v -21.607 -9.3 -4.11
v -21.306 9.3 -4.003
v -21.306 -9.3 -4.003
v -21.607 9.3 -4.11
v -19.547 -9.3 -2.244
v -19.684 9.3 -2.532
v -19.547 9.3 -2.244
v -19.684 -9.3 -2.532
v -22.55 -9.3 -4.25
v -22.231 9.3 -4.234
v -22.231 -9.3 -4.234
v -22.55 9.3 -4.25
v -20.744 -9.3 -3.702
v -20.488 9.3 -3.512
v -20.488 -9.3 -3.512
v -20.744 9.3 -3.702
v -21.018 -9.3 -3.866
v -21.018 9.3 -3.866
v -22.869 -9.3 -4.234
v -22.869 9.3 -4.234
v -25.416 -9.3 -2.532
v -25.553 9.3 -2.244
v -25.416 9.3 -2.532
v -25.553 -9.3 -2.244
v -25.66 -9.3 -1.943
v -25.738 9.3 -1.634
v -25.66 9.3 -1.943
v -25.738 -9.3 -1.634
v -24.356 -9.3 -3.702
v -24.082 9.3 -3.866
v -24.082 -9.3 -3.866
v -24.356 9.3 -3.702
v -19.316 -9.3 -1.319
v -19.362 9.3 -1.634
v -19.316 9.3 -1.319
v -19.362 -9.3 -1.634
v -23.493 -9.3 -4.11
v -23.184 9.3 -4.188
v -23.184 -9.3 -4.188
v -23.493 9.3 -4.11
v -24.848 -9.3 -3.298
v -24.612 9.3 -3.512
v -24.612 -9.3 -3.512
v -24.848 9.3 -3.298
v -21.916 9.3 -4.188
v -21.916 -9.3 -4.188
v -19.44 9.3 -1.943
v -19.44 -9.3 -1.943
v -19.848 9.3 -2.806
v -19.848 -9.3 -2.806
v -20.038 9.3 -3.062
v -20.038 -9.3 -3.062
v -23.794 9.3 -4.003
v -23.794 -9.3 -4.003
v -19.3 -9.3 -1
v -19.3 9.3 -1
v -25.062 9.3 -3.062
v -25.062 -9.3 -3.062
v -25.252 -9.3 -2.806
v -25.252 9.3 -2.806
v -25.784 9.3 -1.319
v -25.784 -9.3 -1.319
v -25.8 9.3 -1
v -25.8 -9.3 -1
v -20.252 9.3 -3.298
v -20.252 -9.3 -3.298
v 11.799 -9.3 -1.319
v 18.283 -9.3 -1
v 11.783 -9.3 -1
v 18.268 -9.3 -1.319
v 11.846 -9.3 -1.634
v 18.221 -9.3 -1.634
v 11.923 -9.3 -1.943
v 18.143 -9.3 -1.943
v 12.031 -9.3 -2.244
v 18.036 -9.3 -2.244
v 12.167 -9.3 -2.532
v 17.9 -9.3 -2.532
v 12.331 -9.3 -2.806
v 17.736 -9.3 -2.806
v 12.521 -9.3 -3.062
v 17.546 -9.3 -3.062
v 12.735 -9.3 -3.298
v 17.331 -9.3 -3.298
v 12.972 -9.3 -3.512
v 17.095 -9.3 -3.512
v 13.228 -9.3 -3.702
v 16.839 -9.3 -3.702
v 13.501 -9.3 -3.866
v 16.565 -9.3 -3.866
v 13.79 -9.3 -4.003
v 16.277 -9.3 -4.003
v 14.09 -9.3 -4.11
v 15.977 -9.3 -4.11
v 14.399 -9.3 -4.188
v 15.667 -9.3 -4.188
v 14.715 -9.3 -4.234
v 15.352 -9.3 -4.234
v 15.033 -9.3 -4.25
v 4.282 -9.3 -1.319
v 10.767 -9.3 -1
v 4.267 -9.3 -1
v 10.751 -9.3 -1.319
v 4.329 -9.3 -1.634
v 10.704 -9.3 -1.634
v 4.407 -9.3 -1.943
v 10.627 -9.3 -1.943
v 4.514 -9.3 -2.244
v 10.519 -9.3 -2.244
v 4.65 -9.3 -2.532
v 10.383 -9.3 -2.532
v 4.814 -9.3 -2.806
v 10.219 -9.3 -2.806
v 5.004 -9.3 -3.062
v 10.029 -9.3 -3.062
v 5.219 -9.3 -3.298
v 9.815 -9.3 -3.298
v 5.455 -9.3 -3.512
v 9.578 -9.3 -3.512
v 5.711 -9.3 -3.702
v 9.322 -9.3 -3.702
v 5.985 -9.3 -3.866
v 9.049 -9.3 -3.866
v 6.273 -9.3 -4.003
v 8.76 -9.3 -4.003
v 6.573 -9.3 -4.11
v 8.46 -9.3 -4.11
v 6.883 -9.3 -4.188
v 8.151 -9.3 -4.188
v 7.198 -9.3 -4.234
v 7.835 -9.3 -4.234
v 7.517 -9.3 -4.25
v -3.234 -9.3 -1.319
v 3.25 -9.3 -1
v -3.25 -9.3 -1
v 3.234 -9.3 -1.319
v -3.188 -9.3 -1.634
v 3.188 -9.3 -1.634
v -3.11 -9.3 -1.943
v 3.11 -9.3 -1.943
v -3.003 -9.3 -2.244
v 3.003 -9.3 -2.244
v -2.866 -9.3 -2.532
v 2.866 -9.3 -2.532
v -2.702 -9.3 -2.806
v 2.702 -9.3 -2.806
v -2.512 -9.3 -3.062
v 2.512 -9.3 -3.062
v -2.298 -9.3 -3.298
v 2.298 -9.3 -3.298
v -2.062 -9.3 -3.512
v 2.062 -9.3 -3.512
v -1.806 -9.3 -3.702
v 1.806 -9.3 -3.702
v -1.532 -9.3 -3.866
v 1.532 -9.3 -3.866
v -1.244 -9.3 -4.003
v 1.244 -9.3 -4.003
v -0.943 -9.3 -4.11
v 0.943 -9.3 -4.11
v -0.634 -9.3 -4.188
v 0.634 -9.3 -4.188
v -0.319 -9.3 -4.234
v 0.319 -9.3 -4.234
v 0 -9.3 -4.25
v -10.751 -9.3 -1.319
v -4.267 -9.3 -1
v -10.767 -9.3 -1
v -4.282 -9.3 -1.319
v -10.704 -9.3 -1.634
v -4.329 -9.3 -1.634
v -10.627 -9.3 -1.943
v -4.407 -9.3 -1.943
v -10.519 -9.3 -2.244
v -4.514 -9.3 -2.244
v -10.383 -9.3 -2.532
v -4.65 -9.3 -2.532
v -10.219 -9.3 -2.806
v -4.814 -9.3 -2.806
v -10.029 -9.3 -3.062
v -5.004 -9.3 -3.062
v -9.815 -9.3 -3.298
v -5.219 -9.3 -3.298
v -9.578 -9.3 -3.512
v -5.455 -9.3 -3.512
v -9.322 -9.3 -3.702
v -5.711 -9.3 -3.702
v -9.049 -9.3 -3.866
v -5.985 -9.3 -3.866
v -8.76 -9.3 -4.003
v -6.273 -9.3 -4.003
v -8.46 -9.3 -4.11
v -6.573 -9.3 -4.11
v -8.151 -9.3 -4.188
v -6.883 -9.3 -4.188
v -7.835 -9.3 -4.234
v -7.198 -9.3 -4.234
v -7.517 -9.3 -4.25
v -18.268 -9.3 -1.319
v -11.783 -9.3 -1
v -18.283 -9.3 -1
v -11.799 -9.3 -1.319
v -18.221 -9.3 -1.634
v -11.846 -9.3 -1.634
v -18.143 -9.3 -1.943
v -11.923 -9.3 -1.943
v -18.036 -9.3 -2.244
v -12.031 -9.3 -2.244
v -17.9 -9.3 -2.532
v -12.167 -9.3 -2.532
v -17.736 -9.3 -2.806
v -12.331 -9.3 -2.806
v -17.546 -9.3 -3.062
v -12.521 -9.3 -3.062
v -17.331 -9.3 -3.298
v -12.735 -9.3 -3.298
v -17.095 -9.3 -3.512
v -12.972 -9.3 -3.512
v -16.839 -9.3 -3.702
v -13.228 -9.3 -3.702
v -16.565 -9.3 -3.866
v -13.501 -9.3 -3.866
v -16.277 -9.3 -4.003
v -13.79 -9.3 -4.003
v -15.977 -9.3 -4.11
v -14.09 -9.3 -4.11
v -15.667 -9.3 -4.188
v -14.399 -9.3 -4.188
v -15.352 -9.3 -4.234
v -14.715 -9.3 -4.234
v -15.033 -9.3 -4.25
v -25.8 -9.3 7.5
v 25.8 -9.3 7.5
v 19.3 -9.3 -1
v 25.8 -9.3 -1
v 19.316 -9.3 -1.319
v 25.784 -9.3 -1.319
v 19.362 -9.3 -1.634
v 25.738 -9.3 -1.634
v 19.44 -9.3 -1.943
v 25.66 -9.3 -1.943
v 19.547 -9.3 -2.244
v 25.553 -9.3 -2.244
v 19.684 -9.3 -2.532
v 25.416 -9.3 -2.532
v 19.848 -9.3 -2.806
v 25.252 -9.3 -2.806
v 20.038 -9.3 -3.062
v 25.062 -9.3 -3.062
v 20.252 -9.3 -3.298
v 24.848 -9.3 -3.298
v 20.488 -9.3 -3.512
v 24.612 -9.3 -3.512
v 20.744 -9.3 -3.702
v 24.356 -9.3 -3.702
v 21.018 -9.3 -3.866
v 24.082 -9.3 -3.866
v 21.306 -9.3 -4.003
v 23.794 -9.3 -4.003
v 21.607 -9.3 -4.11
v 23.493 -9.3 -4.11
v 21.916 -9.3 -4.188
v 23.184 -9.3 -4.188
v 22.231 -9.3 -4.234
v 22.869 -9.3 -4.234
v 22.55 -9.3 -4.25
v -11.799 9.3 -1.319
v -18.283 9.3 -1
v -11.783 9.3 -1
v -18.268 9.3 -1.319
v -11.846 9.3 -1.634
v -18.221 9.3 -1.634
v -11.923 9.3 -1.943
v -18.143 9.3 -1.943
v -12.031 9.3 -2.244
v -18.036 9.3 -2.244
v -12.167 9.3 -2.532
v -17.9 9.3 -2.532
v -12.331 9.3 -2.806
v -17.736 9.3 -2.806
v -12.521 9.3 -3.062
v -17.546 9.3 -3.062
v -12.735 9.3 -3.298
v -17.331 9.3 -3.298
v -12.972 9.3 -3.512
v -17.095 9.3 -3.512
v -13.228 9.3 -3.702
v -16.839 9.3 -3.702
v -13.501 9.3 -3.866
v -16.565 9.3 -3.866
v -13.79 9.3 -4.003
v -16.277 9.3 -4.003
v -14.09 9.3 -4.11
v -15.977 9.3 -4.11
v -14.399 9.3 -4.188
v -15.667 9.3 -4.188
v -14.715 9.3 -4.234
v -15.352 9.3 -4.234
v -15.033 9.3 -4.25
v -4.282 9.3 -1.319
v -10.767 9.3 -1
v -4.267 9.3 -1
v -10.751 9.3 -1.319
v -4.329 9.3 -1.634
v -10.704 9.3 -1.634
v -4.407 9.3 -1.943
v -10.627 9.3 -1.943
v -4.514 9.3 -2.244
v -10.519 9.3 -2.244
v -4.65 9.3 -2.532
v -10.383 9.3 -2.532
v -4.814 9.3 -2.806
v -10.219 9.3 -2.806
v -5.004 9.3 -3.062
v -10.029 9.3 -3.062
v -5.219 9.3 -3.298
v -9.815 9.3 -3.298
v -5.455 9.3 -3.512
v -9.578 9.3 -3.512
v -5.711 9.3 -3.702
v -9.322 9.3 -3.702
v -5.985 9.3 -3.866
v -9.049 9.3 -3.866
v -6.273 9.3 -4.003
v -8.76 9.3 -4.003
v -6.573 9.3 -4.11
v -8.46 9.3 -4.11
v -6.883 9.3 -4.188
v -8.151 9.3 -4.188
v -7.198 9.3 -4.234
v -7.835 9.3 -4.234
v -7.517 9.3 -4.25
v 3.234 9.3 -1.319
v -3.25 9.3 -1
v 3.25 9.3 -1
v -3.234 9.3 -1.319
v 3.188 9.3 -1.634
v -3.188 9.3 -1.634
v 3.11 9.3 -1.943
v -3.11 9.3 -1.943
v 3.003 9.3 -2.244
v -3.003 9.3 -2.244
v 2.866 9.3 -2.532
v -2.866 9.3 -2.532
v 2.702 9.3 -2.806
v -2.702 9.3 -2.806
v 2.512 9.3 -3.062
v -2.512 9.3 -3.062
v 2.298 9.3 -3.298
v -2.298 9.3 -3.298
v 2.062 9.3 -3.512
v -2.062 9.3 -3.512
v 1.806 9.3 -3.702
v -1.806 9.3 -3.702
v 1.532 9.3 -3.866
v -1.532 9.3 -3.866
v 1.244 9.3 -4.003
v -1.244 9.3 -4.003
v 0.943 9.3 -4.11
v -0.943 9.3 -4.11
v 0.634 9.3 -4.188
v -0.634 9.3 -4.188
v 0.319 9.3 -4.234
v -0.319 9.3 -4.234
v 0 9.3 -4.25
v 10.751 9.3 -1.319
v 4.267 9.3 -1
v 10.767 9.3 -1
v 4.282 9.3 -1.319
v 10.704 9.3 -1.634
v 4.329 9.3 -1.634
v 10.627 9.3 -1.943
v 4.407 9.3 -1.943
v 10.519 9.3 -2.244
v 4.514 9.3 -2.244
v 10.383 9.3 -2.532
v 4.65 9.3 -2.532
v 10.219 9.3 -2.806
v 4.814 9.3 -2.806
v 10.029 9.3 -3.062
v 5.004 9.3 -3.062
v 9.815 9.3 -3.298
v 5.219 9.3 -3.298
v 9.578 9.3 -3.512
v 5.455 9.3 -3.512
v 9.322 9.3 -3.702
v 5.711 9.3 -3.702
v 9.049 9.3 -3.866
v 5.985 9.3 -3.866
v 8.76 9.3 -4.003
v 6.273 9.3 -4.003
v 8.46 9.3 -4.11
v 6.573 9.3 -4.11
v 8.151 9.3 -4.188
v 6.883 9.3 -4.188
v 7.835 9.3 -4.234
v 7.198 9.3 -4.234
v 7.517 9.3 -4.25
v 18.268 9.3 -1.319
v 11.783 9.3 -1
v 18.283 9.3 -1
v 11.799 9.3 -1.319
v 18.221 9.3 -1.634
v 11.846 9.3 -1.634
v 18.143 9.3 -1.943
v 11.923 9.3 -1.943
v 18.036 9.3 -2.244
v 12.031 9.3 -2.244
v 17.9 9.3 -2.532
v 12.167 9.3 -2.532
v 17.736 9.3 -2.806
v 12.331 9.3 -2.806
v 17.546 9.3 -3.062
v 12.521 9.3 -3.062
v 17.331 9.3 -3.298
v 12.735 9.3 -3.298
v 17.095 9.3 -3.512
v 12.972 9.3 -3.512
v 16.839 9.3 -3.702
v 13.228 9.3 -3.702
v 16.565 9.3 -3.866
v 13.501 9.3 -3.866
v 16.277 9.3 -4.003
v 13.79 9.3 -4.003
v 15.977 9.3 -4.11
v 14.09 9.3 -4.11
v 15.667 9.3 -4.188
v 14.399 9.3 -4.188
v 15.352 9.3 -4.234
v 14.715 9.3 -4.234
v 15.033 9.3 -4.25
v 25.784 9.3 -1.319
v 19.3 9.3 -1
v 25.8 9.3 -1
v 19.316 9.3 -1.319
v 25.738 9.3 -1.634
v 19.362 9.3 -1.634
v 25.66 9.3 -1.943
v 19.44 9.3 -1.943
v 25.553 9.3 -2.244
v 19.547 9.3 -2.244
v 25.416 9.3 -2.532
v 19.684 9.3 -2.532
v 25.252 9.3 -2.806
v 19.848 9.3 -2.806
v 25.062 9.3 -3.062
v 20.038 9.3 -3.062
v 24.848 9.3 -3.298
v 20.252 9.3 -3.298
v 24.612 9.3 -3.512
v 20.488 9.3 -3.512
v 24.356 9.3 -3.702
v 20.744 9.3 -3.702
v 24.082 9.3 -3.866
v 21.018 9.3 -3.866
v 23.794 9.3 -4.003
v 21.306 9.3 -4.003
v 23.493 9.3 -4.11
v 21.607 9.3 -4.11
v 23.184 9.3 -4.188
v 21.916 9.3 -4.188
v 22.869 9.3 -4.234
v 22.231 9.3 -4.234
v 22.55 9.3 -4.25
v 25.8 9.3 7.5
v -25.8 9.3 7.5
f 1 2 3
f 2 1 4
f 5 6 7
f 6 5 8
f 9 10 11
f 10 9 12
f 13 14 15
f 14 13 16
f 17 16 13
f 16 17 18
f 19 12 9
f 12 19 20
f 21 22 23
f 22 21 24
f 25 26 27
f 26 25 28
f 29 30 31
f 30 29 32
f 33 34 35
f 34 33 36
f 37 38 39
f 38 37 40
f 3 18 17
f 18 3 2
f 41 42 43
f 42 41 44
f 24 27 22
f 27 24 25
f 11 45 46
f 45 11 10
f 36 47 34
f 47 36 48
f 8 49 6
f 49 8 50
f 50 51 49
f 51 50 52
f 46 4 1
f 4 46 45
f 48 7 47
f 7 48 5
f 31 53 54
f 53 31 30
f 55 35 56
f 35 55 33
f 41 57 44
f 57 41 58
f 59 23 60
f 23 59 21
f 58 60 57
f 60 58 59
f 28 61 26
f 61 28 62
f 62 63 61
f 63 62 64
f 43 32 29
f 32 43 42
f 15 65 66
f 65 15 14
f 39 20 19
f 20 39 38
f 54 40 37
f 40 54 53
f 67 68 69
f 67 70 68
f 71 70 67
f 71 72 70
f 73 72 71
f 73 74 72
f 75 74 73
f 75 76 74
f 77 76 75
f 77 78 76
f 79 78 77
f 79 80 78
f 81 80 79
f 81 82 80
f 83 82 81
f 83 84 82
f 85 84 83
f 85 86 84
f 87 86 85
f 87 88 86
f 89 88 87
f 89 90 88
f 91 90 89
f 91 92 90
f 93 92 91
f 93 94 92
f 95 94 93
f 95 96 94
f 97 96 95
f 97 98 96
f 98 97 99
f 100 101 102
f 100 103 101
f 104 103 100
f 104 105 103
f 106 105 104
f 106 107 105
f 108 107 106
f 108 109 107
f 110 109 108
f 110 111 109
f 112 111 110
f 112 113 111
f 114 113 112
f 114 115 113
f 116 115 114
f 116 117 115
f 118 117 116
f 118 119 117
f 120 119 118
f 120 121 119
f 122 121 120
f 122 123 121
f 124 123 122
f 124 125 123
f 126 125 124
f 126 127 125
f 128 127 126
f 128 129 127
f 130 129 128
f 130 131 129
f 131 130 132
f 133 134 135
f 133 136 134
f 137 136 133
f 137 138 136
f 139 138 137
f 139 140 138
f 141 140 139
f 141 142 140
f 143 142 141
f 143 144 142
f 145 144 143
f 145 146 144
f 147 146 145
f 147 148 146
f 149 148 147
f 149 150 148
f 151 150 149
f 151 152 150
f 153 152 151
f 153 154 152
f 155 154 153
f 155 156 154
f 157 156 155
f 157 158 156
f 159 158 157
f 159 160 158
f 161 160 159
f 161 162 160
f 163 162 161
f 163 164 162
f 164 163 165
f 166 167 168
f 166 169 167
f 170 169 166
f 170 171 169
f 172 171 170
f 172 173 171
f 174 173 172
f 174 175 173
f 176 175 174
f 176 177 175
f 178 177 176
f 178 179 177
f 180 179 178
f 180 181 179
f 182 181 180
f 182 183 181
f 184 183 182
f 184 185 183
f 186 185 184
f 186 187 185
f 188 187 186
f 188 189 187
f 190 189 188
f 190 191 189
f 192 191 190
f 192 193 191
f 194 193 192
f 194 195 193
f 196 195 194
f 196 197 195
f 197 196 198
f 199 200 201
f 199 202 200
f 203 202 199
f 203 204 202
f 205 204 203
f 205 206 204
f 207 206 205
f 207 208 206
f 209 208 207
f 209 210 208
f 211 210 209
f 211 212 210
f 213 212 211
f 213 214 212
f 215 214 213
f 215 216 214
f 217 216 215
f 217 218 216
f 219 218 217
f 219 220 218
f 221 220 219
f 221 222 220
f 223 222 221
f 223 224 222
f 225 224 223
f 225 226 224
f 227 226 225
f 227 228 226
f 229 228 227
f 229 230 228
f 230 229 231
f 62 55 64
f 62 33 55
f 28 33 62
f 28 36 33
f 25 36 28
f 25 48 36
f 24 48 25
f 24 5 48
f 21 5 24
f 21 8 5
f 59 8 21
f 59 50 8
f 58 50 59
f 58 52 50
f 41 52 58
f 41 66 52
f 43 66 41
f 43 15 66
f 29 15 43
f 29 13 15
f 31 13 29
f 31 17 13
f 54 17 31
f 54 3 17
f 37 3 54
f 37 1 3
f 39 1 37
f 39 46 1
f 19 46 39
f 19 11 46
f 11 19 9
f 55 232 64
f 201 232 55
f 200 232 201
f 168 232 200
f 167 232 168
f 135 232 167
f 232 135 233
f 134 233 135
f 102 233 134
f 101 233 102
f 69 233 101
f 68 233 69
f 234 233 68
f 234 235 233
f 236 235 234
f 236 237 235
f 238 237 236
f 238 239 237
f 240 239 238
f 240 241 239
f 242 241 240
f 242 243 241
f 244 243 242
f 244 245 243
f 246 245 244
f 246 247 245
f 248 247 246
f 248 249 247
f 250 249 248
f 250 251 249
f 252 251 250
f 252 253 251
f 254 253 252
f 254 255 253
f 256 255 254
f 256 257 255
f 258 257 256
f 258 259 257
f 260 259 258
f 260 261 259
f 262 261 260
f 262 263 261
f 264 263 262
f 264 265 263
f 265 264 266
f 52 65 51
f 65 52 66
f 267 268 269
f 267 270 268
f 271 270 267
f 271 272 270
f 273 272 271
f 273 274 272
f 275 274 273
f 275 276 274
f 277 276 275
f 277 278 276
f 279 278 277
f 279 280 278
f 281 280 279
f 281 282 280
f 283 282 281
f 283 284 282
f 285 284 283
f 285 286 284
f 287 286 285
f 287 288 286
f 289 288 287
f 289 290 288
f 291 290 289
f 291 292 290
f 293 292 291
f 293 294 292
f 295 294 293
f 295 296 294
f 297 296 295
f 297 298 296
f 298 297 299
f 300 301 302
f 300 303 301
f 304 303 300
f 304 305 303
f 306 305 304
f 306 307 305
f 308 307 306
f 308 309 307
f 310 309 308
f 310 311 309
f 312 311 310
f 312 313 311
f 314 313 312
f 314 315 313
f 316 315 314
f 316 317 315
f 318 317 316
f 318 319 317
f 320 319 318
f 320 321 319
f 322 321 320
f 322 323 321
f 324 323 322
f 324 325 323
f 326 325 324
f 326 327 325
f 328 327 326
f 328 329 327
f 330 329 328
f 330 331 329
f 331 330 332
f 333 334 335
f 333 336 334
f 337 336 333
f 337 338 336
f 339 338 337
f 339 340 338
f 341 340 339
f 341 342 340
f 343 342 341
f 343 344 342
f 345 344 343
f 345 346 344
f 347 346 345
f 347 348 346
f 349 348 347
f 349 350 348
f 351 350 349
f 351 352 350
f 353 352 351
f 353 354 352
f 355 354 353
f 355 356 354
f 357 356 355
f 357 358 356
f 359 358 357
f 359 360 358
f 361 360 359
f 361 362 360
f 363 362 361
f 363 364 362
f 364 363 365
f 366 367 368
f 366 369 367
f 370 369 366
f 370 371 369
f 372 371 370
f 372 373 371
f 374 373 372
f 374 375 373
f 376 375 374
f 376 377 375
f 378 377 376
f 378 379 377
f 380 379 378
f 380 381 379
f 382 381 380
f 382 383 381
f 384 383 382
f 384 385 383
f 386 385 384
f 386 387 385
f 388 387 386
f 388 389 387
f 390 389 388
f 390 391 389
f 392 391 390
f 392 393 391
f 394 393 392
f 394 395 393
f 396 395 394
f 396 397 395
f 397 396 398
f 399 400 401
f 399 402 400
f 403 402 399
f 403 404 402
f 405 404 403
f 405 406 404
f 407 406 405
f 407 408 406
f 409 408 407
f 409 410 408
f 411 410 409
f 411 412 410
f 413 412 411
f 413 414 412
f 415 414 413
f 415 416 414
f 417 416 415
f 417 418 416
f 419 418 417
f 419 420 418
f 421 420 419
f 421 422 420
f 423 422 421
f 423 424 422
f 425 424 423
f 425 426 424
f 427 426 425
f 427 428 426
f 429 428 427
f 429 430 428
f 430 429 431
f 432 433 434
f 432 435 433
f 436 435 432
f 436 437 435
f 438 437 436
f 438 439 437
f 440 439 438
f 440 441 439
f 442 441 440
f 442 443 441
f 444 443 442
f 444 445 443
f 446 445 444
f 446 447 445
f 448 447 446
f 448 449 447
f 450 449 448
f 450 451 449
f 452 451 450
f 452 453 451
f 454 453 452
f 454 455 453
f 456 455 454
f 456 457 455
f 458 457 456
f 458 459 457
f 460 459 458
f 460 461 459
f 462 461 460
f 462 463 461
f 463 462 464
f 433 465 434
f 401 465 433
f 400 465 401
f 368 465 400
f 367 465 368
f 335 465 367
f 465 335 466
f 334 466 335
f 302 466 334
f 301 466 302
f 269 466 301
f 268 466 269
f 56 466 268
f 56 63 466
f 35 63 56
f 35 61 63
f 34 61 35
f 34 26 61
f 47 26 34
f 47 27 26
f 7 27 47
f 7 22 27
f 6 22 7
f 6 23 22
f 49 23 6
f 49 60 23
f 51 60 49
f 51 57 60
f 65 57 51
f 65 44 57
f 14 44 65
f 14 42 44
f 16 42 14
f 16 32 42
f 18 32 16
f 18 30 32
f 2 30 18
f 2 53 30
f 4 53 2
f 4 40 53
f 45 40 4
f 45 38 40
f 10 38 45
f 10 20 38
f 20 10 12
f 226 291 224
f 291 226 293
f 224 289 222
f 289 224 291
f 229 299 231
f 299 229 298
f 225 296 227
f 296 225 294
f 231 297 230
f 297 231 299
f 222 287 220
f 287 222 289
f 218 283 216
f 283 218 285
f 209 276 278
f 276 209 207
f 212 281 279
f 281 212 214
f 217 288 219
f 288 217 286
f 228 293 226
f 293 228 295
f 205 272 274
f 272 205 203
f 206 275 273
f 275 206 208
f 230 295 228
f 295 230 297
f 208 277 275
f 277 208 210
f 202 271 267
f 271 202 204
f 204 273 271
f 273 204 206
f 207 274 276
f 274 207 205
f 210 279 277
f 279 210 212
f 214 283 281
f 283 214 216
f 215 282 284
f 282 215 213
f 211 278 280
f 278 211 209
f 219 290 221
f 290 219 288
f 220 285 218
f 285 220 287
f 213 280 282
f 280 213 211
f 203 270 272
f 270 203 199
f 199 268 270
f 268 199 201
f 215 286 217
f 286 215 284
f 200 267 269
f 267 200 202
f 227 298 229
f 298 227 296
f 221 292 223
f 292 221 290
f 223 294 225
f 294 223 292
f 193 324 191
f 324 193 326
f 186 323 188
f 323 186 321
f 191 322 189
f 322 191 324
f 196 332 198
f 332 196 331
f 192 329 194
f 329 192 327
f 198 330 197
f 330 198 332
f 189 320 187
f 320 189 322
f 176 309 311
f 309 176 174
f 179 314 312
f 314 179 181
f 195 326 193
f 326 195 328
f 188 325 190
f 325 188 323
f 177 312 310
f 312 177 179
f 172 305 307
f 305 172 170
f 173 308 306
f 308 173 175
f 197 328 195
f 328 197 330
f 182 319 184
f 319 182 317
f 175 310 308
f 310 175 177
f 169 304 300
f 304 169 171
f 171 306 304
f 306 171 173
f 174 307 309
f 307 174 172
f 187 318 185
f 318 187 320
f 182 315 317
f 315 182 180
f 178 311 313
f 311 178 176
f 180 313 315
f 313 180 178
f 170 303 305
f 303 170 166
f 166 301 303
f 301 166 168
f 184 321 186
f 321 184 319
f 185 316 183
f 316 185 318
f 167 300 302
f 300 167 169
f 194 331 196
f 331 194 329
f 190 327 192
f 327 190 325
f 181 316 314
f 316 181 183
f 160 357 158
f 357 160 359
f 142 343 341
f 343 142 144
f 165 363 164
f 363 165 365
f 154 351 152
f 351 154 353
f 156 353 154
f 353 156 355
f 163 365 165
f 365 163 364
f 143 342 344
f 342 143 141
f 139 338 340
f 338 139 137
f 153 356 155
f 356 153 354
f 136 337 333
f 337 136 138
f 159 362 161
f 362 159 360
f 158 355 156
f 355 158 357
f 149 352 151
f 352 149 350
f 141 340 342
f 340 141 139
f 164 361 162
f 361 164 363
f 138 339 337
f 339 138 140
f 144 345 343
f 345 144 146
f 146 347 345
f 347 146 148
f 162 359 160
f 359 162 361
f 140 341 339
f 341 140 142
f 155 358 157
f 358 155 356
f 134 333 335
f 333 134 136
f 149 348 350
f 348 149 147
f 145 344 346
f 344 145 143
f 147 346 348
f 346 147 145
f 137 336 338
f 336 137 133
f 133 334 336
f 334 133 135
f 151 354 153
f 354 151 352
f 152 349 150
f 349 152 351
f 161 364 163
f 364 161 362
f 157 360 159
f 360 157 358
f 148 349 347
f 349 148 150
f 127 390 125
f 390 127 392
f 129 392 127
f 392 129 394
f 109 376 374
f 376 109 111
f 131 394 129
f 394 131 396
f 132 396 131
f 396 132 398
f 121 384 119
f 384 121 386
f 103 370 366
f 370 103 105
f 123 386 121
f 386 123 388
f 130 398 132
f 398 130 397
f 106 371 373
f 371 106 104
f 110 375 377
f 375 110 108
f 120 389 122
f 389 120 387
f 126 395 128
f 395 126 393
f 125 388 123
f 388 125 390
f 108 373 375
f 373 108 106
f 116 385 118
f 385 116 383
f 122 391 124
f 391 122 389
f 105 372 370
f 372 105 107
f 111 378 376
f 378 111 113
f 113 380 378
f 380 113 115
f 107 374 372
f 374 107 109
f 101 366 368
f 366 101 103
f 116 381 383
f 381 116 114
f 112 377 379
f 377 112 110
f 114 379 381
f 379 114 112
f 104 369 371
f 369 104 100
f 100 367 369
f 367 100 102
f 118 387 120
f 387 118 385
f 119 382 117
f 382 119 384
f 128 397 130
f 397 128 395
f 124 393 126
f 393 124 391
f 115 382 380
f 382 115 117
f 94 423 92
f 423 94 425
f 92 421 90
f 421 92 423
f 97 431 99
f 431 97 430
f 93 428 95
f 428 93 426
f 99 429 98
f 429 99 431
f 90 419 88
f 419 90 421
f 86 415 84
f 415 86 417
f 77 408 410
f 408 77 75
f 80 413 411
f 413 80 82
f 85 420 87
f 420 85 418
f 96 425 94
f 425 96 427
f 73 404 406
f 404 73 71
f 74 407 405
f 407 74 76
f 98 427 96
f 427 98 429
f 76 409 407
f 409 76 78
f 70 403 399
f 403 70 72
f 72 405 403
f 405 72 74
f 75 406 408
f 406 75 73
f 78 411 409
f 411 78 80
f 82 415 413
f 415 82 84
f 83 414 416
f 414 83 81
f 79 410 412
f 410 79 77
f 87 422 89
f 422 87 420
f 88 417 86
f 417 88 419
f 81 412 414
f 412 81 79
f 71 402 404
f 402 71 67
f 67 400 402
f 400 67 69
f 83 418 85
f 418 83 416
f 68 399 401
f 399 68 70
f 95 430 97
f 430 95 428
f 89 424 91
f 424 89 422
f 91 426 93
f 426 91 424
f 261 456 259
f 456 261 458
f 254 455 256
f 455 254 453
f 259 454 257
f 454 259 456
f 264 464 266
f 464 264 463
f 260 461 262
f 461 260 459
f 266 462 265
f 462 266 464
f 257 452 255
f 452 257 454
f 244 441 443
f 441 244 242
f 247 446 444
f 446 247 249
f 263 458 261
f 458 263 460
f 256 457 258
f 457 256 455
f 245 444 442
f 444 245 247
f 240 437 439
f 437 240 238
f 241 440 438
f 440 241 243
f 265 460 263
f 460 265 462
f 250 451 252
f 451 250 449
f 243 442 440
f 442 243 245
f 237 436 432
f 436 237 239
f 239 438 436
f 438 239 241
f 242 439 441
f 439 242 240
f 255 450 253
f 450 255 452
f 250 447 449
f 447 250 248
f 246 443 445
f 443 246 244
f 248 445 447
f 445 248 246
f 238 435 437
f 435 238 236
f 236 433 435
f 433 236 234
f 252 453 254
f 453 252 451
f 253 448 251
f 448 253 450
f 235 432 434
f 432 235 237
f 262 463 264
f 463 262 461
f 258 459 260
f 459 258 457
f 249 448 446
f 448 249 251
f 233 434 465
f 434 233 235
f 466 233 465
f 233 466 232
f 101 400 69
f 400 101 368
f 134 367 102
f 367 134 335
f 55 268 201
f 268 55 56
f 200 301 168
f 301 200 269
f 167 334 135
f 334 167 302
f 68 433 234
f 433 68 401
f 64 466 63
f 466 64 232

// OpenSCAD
include <kneeler-boot-config.scad>

// --- TEKTONOLOGY KNEELER BOOT FOOT: 7-RIB INSERT --- // This is the internal TPU insert that slips into the bottom half of the coupler. It has a main rectangular body with 7 evenly spaced semi-cylindrical ribs on the bottom to create a secure, high-friction fit within the socket. The dimensions are designed to be slightly larger than the socket for a tight fit, and the ribs provide additional grip and stability when kneeling. 
socket_depth = 6.5; //depth of the socket to slip into
core_protrusion = 2; //core extension beyond the socket

tightness = 0.1; // Adjust this: 0.0 for snug, 0.2 for very tight
$fn = 64;

ribs = 7; 
radius = socket_depth / 2; // Radius of semi-cylinders

module kneeler_boot_insert() {
    core_depth = socket_depth + core_protrusion; //thickness of main body
    insert_l = leg_l + tightness;
    insert_w = leg_w + tightness;
    
    
    // This calculates rib width so the total set fits exactly
    rib_w = (insert_l - ((ribs - 1))) / ribs; 
    pitch = (insert_l - (2 * radius)) / (ribs - 1);

    union() {
        // THE MAIN BODY (The "Core")
        translate([0, 0, socket_depth/2])
            cube([insert_l, insert_w, core_depth], center=true);
        

        //SEMI-CYLINDERS
        for (i = [0 : ribs - 1]) {
            // Start at the left edge + radius, then move by pitch
            x_pos = (i * pitch) - (insert_l/2) + radius;
            
            //center cylinder at edge of core
            z_axis = -1 * (core_protrusion / 2);

            translate([x_pos, 0, z_axis])
                rotate([90, 0, 0]) 
                    cylinder(h = insert_w, r = radius, center = true); 
        }

        

    }
}

kneeler_boot_insert();
